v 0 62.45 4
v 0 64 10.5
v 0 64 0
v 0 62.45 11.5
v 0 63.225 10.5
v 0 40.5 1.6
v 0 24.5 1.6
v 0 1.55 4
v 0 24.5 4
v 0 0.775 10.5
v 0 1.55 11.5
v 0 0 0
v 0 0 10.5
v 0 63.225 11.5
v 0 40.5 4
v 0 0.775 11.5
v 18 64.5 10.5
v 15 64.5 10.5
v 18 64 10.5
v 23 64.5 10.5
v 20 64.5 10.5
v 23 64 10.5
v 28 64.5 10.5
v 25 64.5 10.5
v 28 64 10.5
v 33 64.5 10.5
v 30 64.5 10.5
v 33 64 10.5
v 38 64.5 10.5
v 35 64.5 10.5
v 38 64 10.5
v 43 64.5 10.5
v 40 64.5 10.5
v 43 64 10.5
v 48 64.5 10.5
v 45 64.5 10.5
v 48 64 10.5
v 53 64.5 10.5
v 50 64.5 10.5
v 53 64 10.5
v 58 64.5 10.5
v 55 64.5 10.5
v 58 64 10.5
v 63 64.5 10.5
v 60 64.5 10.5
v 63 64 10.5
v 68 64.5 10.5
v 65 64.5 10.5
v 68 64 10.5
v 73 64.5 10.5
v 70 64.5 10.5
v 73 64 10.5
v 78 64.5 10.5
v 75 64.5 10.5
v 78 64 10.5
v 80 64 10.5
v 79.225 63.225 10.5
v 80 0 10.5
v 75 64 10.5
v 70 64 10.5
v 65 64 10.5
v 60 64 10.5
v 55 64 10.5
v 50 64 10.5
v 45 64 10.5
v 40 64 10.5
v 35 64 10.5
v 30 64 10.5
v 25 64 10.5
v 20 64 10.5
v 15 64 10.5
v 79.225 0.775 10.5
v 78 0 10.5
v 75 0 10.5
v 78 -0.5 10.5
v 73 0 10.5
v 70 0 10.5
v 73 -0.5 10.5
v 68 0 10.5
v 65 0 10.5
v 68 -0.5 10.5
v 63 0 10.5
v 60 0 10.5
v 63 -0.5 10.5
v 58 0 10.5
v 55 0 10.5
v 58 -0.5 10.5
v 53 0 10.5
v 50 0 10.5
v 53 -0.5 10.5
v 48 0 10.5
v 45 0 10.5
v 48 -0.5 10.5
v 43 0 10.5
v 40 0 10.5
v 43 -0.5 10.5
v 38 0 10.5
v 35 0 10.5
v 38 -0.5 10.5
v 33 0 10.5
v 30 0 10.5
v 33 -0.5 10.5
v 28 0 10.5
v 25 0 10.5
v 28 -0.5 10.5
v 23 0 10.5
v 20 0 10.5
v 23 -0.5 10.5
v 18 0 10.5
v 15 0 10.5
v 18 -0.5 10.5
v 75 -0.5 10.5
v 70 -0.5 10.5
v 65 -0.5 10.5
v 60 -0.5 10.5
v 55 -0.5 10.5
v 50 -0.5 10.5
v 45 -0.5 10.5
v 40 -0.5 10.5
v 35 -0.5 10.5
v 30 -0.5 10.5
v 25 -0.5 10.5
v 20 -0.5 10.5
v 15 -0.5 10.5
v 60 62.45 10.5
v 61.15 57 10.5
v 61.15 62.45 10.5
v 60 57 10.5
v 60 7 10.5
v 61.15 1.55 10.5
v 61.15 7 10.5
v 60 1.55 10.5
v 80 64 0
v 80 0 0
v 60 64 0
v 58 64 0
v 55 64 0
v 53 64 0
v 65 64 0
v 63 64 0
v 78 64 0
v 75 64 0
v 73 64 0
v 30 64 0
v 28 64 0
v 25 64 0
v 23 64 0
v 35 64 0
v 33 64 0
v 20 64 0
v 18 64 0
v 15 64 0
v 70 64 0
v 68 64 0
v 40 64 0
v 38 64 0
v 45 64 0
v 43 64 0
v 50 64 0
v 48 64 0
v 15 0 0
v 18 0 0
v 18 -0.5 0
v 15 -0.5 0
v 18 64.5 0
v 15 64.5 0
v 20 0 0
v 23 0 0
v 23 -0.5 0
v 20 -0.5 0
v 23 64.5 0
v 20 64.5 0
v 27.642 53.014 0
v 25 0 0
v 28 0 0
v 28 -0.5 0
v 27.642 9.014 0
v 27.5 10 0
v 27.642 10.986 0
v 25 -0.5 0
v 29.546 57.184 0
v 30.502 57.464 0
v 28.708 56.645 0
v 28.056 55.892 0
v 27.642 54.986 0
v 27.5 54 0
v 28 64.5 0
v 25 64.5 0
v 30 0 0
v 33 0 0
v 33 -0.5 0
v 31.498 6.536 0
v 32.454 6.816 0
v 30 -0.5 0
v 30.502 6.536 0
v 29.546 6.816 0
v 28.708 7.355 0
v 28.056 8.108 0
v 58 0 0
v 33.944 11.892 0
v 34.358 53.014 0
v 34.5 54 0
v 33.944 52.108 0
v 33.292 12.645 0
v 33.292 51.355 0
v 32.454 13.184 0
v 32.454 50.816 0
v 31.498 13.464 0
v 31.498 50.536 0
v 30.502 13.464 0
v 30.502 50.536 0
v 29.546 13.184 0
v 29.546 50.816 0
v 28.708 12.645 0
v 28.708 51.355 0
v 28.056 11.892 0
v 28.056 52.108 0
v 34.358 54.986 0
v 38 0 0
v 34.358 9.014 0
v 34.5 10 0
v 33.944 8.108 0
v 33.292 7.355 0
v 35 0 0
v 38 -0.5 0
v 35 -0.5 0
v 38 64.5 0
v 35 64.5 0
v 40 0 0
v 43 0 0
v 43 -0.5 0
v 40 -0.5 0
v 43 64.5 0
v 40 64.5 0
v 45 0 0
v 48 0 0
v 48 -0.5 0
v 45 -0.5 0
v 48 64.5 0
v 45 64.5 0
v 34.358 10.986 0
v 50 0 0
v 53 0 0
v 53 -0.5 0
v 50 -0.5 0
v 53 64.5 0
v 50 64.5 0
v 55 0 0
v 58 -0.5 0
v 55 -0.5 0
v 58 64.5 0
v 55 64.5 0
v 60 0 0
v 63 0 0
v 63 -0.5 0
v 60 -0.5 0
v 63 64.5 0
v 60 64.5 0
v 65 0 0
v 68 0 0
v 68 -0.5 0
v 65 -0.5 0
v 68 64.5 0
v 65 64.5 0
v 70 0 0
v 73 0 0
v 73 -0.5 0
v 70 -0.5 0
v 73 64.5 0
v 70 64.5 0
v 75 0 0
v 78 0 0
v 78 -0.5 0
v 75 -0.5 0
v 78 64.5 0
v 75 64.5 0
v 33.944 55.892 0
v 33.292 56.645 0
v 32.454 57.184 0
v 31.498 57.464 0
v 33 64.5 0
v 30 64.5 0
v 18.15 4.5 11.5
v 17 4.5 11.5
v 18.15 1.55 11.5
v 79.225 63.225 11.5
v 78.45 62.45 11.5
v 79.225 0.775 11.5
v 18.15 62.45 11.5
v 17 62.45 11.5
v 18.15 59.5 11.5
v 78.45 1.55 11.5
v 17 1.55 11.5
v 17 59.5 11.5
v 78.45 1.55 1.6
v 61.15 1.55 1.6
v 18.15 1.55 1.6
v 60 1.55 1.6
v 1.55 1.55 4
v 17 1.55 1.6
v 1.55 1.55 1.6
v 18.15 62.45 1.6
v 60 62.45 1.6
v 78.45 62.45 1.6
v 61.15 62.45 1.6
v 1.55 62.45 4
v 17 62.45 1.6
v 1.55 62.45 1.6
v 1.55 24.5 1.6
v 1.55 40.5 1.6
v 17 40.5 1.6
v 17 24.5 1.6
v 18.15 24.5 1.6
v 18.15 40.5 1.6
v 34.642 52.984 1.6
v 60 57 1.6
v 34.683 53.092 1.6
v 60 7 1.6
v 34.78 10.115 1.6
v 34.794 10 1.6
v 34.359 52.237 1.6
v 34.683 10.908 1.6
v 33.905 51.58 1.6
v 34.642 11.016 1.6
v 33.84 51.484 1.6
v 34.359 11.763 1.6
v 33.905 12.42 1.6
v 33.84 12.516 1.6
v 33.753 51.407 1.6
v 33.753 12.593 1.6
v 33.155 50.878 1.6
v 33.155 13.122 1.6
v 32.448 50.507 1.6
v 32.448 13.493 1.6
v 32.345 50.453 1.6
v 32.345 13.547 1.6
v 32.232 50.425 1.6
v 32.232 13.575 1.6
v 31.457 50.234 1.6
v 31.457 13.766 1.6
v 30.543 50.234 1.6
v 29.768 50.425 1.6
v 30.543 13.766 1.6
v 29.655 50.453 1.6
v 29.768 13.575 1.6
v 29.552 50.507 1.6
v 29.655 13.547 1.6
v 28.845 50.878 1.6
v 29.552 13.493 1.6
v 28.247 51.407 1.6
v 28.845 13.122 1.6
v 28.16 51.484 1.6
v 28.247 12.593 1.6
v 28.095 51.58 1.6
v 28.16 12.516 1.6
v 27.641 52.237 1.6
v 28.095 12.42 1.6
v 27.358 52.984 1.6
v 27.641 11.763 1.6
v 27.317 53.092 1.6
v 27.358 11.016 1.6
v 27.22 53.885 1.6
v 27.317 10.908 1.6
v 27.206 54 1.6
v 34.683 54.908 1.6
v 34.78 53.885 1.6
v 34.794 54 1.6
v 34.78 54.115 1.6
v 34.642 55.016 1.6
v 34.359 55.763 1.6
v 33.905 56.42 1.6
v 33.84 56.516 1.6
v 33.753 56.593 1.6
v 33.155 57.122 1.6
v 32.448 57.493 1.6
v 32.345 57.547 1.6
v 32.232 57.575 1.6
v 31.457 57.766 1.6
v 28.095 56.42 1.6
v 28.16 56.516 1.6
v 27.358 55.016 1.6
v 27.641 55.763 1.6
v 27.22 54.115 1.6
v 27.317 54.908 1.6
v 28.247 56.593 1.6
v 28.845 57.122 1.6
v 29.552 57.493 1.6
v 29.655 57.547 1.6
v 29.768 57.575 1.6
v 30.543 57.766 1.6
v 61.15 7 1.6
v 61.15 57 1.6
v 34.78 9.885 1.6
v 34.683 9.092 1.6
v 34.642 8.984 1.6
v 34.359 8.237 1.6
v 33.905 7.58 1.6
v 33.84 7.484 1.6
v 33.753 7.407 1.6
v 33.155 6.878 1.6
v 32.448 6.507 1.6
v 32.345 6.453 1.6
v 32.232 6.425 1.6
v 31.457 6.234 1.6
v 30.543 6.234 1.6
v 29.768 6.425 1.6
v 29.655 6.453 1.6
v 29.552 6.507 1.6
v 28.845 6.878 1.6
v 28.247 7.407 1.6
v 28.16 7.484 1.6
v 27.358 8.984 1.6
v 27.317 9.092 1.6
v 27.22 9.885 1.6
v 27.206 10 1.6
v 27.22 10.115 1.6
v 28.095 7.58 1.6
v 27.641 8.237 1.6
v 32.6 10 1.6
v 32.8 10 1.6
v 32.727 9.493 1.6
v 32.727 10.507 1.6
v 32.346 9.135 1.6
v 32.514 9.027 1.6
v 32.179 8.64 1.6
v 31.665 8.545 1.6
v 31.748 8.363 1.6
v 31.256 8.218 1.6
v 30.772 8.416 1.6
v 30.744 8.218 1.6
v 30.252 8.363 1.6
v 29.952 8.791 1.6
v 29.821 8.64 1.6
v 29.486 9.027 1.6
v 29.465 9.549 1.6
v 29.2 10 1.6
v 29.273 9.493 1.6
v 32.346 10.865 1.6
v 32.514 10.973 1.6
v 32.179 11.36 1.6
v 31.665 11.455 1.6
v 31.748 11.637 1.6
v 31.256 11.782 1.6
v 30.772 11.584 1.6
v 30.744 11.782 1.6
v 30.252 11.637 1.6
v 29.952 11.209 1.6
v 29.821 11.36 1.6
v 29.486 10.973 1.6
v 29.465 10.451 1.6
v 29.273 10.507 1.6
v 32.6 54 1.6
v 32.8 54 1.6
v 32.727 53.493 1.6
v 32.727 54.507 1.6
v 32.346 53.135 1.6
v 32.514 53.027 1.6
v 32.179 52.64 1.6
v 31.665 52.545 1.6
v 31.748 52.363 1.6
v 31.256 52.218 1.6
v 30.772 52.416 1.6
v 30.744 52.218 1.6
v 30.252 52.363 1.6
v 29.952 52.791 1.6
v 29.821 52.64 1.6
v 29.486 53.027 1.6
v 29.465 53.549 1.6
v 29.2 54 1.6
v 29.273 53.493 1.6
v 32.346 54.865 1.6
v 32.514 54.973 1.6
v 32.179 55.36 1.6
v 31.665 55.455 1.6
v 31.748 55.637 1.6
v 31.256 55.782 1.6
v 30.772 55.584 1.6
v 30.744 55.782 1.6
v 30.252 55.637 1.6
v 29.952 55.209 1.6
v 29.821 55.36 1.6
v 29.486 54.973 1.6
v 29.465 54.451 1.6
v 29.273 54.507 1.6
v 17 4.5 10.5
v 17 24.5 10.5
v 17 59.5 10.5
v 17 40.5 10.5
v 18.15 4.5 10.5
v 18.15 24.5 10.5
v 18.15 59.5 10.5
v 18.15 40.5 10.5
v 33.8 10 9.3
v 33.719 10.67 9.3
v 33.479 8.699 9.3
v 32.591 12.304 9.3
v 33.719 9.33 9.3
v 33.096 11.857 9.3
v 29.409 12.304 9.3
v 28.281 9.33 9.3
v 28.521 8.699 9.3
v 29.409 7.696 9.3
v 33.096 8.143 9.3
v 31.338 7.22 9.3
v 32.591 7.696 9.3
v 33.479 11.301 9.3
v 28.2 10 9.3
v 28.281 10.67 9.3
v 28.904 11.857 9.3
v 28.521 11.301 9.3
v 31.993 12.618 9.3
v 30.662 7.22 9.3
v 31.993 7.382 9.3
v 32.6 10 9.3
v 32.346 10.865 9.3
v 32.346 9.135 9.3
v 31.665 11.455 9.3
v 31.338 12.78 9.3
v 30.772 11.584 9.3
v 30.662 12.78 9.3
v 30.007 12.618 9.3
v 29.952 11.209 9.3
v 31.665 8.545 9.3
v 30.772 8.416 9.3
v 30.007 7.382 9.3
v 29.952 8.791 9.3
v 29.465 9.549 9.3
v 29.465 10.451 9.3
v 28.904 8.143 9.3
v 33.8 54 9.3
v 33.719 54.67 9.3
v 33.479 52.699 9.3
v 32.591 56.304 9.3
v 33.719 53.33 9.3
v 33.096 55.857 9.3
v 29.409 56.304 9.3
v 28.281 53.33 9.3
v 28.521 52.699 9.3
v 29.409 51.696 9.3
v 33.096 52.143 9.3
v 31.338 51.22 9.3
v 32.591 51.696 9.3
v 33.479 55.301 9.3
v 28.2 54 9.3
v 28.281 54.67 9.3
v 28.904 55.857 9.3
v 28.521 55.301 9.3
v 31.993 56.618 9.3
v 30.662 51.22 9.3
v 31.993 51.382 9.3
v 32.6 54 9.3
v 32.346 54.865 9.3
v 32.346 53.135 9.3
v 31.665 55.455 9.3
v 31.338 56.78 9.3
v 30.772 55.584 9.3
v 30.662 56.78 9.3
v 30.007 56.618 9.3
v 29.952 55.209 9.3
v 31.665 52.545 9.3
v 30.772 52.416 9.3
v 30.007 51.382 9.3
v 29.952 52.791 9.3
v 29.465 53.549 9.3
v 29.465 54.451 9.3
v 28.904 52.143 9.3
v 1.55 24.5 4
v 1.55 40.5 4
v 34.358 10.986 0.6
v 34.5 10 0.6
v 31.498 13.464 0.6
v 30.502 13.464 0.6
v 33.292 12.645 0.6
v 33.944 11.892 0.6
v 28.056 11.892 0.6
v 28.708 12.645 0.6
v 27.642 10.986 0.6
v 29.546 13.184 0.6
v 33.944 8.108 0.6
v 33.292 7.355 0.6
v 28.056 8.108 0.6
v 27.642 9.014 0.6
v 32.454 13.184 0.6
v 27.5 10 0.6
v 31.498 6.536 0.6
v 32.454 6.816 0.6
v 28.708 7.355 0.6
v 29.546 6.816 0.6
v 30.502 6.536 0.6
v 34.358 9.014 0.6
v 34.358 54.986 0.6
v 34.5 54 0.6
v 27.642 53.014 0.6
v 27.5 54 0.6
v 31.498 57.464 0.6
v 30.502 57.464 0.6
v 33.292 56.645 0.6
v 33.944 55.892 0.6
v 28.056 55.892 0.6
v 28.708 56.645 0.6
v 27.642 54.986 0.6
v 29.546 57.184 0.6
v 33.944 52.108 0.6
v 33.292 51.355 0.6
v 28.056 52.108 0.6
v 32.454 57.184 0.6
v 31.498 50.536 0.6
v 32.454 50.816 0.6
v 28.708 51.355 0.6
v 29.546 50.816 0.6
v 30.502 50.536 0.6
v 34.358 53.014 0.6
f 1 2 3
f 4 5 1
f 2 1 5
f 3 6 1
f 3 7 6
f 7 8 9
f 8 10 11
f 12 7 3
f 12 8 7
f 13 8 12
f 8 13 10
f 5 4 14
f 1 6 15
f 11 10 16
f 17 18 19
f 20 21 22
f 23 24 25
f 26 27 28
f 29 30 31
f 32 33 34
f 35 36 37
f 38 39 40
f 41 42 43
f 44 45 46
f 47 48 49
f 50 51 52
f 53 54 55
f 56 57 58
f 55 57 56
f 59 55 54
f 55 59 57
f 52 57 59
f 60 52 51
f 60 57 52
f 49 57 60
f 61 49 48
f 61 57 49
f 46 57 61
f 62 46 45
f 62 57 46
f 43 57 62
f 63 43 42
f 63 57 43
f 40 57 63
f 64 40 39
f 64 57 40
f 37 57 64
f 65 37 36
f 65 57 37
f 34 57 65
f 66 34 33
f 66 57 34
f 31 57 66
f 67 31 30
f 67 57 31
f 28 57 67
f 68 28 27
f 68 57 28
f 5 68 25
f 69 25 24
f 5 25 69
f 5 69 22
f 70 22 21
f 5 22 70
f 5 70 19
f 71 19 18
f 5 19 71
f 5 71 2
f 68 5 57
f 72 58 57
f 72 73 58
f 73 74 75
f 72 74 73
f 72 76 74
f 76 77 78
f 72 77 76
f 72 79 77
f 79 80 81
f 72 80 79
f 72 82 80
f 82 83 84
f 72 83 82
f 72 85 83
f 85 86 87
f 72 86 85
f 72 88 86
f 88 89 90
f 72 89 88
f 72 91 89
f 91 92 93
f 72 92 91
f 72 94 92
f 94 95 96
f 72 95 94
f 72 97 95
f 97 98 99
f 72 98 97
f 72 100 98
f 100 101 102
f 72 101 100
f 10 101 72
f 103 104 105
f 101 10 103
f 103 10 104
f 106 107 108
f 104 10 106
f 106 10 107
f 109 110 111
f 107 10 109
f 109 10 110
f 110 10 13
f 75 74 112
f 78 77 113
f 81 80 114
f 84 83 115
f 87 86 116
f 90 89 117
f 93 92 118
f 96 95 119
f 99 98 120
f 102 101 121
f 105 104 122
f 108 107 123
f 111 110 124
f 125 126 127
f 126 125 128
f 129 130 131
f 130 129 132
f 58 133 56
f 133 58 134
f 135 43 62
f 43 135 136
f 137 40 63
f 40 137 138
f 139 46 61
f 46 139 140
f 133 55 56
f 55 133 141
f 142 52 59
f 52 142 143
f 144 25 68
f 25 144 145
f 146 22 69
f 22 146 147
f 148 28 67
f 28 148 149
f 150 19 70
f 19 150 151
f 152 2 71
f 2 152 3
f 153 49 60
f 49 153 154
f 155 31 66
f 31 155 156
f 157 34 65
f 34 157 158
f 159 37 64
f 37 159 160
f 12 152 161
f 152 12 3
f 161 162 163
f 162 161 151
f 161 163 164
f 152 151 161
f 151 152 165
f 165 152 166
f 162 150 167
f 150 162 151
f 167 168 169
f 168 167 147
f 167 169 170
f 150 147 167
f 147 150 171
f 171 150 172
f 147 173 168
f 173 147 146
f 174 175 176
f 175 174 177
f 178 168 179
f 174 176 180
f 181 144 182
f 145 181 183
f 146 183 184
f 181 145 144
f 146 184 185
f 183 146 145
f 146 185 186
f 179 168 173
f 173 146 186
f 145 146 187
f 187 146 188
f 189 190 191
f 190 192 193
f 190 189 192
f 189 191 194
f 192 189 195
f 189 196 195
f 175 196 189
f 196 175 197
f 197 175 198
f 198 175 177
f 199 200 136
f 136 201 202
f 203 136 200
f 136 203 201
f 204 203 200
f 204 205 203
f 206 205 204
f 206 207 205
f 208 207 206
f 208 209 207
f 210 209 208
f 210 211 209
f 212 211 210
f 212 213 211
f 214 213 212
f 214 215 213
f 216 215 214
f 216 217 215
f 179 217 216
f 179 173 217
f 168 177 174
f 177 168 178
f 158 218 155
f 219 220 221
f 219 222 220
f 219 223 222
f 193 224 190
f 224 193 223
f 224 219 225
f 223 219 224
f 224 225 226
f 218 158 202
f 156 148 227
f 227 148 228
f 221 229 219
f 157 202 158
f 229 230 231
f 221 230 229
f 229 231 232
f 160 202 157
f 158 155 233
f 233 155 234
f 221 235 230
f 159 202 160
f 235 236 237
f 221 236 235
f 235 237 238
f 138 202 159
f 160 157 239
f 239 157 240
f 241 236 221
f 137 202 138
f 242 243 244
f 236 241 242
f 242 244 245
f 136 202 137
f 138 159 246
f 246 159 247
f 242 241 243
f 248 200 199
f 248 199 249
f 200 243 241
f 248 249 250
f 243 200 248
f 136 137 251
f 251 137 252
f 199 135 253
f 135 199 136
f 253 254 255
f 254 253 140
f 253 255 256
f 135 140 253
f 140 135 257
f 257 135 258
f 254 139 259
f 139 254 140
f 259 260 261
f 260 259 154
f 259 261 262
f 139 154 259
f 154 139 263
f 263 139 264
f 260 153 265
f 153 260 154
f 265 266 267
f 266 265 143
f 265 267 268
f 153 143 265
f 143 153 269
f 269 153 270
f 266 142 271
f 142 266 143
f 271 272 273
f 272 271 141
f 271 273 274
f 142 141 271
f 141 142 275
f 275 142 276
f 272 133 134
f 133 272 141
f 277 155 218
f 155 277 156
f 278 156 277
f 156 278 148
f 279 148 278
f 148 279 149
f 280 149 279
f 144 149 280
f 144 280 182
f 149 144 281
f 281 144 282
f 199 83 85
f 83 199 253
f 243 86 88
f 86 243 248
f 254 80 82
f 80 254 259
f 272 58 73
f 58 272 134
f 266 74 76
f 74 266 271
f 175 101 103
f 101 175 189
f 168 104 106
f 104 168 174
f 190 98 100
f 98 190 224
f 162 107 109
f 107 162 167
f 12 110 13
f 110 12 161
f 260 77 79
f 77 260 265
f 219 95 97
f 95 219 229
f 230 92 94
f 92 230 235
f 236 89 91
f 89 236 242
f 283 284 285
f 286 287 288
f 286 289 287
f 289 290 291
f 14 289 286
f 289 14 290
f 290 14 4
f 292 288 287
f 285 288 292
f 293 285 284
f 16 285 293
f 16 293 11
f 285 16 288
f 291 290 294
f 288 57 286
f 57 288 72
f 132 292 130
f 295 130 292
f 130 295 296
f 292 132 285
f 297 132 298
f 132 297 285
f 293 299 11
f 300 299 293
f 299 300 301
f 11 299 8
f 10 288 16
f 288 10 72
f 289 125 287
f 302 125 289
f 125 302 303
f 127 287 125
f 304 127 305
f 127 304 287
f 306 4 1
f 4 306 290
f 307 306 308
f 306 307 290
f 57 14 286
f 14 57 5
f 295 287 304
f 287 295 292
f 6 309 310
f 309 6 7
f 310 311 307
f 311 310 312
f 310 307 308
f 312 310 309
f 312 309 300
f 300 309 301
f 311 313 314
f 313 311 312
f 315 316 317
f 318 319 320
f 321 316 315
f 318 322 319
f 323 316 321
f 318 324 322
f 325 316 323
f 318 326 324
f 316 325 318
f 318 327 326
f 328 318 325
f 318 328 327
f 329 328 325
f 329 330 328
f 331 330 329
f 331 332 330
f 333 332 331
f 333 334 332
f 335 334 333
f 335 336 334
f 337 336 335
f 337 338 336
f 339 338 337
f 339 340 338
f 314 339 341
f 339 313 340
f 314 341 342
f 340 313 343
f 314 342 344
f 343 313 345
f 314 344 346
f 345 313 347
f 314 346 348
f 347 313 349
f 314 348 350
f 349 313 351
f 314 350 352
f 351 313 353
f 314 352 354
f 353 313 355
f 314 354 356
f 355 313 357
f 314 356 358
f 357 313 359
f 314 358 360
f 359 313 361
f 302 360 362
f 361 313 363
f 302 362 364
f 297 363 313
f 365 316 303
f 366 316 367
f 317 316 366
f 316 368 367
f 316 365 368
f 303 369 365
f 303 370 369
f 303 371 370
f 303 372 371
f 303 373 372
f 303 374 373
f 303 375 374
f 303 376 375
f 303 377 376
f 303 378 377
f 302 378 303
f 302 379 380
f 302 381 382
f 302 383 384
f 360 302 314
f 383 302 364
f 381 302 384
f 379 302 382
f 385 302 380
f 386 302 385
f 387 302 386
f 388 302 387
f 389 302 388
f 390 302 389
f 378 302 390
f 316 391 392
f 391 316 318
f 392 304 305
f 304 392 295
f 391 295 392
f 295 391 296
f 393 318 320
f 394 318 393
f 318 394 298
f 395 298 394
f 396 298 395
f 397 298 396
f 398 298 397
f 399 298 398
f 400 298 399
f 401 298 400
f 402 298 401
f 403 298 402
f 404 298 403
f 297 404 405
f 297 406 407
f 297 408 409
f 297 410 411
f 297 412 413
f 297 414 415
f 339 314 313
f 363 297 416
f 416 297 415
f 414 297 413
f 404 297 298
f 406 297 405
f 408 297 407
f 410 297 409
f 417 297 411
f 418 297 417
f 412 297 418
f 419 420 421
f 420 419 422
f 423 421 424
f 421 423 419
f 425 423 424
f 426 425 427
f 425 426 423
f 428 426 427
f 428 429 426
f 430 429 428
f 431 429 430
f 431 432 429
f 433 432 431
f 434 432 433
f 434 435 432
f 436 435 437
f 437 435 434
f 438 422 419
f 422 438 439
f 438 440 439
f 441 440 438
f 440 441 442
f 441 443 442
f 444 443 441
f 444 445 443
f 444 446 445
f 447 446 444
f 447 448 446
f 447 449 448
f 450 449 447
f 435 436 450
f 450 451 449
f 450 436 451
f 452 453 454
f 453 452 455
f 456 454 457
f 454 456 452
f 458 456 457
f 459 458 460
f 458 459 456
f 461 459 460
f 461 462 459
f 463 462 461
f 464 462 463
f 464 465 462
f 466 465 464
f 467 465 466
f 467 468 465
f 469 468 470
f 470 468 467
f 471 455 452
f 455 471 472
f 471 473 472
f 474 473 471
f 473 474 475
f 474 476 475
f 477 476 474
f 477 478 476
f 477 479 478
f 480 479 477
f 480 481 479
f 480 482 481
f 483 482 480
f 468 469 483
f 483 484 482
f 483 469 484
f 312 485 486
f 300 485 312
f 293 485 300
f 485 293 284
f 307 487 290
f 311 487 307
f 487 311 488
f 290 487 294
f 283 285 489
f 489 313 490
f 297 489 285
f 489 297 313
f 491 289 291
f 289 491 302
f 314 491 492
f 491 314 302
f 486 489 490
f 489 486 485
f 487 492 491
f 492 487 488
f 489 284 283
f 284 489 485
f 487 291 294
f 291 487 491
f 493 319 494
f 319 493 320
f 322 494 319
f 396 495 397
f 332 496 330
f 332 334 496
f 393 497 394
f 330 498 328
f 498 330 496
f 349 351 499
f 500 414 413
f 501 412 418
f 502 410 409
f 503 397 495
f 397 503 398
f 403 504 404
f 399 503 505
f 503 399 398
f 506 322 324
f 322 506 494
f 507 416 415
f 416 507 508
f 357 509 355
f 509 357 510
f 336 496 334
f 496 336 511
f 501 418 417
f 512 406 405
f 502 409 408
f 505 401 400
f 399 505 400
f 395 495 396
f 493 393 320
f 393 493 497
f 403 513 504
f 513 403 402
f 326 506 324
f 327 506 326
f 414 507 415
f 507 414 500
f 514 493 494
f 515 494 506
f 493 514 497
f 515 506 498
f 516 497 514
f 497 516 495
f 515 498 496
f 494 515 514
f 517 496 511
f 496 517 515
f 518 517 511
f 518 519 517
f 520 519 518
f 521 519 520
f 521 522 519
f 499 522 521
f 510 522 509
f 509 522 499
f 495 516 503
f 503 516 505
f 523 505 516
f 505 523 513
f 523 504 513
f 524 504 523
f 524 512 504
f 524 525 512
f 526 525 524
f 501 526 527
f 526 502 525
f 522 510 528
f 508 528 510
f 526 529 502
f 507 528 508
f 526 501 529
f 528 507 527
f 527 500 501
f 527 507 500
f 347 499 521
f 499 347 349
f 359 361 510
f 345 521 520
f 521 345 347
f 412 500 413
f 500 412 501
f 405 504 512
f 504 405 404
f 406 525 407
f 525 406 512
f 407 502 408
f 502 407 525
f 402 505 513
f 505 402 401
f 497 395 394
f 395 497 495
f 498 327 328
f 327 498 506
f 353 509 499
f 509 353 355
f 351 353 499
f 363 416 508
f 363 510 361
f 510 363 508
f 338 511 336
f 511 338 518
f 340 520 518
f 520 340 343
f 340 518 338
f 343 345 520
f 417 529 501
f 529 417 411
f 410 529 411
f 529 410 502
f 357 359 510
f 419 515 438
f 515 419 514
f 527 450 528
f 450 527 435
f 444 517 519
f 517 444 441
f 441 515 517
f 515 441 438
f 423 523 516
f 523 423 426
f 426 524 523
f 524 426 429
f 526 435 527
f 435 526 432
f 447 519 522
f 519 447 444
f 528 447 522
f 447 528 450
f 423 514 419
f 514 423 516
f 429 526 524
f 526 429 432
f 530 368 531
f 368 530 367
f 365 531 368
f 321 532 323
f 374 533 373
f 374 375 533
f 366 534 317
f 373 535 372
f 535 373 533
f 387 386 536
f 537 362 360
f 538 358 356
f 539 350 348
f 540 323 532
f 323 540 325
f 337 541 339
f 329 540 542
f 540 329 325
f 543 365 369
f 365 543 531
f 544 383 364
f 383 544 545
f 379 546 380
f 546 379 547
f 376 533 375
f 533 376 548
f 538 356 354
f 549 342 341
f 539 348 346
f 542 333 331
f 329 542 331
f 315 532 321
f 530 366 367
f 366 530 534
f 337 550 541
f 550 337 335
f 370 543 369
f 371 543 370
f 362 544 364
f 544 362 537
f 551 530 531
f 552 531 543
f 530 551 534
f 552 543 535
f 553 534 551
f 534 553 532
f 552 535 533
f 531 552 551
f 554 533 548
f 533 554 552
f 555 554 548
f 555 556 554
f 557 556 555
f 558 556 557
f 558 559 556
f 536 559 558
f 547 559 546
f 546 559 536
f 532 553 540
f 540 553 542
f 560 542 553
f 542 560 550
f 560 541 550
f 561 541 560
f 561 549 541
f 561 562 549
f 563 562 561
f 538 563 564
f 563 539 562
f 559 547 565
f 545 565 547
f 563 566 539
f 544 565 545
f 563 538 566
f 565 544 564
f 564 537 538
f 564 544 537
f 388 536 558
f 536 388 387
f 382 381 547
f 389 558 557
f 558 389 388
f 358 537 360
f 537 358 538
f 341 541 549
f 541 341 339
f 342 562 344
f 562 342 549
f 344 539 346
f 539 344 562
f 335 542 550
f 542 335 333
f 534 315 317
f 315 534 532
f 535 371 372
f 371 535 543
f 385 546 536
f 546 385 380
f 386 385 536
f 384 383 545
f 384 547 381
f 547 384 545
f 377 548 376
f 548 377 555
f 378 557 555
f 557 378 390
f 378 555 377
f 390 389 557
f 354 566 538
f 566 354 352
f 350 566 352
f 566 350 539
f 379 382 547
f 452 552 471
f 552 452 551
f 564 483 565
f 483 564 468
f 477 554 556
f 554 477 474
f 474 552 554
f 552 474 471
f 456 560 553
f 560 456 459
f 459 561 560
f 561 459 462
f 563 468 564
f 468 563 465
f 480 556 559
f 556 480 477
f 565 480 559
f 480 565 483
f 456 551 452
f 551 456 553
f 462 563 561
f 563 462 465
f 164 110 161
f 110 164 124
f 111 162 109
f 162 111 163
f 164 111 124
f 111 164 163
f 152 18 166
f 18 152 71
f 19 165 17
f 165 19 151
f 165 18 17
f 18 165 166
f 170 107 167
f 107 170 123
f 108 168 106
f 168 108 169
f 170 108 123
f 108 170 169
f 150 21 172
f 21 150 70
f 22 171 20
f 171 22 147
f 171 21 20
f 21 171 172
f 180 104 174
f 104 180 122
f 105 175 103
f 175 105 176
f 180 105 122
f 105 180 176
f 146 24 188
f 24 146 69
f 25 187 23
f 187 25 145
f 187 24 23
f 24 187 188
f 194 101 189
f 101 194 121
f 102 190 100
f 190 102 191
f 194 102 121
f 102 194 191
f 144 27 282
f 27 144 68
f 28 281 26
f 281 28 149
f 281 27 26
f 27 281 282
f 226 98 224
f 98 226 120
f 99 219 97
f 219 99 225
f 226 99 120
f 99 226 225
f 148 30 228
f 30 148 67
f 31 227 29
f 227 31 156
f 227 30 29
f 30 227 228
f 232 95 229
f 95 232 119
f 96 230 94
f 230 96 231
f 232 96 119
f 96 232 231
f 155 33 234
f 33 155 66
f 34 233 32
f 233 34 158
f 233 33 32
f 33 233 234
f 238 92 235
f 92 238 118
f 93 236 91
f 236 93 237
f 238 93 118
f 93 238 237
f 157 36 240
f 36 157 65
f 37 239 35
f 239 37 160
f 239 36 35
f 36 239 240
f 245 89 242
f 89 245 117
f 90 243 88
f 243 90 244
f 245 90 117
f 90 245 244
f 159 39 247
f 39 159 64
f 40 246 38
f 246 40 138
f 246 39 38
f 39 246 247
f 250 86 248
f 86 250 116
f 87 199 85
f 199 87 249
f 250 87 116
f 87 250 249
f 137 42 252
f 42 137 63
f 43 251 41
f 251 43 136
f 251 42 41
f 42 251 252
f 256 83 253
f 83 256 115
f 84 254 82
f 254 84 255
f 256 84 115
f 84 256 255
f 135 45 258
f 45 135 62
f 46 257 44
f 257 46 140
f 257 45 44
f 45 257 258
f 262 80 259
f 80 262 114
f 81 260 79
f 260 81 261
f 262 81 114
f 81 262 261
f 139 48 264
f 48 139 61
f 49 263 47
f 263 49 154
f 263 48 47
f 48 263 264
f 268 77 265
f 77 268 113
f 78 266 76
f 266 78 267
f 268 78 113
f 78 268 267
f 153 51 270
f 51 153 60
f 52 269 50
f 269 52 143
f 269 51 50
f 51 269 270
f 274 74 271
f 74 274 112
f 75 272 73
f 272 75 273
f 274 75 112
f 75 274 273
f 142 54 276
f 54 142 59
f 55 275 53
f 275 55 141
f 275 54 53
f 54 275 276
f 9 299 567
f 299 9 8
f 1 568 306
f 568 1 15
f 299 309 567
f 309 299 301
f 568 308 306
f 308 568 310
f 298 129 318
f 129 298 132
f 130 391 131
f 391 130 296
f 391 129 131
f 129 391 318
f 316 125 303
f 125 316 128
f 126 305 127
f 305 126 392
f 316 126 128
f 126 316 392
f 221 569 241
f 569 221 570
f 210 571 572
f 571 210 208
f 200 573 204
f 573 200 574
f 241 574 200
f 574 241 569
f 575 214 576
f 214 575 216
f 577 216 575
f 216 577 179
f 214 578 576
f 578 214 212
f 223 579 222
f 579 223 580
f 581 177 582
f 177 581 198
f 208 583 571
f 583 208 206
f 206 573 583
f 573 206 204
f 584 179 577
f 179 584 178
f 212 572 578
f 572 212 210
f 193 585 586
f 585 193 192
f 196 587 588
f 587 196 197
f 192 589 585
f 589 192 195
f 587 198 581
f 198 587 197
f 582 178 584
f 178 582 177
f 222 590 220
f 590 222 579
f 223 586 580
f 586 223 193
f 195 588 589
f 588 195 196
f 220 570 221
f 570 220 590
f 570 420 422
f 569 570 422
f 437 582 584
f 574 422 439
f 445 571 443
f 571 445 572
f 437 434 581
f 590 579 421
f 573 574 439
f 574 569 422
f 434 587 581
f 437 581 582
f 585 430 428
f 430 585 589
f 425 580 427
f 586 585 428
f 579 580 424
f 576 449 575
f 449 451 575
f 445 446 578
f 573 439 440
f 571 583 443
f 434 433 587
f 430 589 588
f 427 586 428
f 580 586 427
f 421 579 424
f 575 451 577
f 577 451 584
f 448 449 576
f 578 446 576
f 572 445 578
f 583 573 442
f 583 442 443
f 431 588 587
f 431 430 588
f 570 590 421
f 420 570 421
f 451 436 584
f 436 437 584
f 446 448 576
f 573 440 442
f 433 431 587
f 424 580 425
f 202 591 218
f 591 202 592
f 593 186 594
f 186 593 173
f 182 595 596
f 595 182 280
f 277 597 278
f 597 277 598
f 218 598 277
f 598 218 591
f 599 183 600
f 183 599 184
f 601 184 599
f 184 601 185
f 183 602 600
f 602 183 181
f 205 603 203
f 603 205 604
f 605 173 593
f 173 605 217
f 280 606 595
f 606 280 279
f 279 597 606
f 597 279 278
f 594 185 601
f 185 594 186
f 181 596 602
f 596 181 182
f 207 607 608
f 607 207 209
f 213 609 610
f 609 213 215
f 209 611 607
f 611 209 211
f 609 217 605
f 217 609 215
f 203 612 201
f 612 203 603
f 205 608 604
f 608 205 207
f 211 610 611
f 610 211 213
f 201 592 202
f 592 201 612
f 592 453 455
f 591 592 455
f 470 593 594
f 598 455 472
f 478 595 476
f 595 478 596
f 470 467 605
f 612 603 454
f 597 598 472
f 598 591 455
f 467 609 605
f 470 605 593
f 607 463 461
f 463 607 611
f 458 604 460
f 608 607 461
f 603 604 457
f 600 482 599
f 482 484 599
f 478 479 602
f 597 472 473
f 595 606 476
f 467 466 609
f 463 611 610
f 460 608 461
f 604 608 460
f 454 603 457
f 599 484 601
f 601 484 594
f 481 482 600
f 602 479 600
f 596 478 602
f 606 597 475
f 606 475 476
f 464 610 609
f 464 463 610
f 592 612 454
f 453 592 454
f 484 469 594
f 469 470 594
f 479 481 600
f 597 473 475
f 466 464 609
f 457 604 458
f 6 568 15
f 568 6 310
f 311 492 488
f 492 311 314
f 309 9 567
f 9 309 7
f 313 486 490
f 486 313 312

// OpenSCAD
/* A8PicoCart shell
   (c) R.Edwards 2023
*/

ridge_width = 0.5;
cart_length=80;
cart_width=65 - (ridge_width*2);
cart_height=11.5;
screw_sep = 44;
front_thickness = 1.6;
sides_thickness = 1.6 - 0.05;
support_thickness = 1.2 - 0.05;
support_height = 10.5;
rim_height=1;

difference() {
    union() {
        difference() {
            // main shell
            union() {
                cube([cart_length, cart_width, cart_height-rim_height]);
                // rim
                translate([0, sides_thickness/2, cart_height-rim_height])
                    cube([cart_length-sides_thickness/2, sides_thickness/2, rim_height]);
                translate([0, cart_width-sides_thickness, cart_height-rim_height])
                    cube([cart_length-sides_thickness/2, sides_thickness/2, rim_height]);
                translate([cart_length-sides_thickness, sides_thickness/2, cart_height-rim_height])
                    cube([sides_thickness/2, cart_width-sides_thickness, rim_height]);
            }
            // make hollow
            translate([0, sides_thickness, front_thickness])
                cube([cart_length-sides_thickness,
                    cart_width-sides_thickness*2,
                    cart_height-front_thickness]);
        }    
        // end
        cube([sides_thickness, cart_width, 4]);
        // pcb supports
        difference() {
            translate([17, sides_thickness, 0])
                cube([support_thickness, cart_width-sides_thickness*2, cart_height]);
            translate([17, (cart_width-55)/2, support_height])
                cube([support_thickness, 55, cart_height-support_height]);
        }
        translate([60, 0, 0])
            cube([support_thickness, 7, support_height]);
        translate([60, cart_width-7, 0])
            cube([support_thickness, 7, support_height]);
        // screw holes
        translate([31, (cart_width-screw_sep)/2, 0])
            difference() {
                cylinder(h = support_height - 1.2, r1 = 4, r2 = 2.8,  $fs = 1);
                cylinder(h = support_height - 1.2, r1 = 1.6, r2 = 1.6,  $fs = 1);
            }
        translate([31, cart_width-(cart_width-screw_sep)/2, 0])
            difference() {
                cylinder(h = support_height - 1.2, r1 = 4, r2 = 2.8,  $fs = 1);
                cylinder(h = support_height - 1.2, r1 = 1.6, r2 = 1.6,  $fs = 1);
            }
        // ridges
        for (i = [15: 5: cart_length-5])
            union() {
                translate([i, -ridge_width, 0])
                    cube([3, ridge_width, cart_height-rim_height]);
                translate([i, cart_width, 0])
                    cube([3, ridge_width, cart_height-rim_height]);
            }
    }
    // screw head
    translate([31, (cart_width-screw_sep)/2, 0])
        cylinder(h = 0.6, r1 = 3.5, r2 = 3.5,  $fs = 1);
    translate([31, (cart_width-screw_sep)/2, 0.6])
        cylinder(h = front_thickness-0.6, r1 = 3.5, r2 = 1.8,  $fs = 1);

    translate([31, cart_width-(cart_width-screw_sep)/2, 0])
        cylinder(h = 0.6, r1 = 3.5, r2 = 3.5,  $fs = 1);
    translate([31, cart_width-(cart_width-screw_sep)/2, 0.6])
        cylinder(h = front_thickness-0.6, r1 = 3.5, r2 = 1.8,  $fs = 1);
     // cutout USB slot
    translate([0, (cart_width-16)/2+0.5, front_thickness])    // pico is 0.5 mm off center
        cube([40, 16, cart_height]);

}
